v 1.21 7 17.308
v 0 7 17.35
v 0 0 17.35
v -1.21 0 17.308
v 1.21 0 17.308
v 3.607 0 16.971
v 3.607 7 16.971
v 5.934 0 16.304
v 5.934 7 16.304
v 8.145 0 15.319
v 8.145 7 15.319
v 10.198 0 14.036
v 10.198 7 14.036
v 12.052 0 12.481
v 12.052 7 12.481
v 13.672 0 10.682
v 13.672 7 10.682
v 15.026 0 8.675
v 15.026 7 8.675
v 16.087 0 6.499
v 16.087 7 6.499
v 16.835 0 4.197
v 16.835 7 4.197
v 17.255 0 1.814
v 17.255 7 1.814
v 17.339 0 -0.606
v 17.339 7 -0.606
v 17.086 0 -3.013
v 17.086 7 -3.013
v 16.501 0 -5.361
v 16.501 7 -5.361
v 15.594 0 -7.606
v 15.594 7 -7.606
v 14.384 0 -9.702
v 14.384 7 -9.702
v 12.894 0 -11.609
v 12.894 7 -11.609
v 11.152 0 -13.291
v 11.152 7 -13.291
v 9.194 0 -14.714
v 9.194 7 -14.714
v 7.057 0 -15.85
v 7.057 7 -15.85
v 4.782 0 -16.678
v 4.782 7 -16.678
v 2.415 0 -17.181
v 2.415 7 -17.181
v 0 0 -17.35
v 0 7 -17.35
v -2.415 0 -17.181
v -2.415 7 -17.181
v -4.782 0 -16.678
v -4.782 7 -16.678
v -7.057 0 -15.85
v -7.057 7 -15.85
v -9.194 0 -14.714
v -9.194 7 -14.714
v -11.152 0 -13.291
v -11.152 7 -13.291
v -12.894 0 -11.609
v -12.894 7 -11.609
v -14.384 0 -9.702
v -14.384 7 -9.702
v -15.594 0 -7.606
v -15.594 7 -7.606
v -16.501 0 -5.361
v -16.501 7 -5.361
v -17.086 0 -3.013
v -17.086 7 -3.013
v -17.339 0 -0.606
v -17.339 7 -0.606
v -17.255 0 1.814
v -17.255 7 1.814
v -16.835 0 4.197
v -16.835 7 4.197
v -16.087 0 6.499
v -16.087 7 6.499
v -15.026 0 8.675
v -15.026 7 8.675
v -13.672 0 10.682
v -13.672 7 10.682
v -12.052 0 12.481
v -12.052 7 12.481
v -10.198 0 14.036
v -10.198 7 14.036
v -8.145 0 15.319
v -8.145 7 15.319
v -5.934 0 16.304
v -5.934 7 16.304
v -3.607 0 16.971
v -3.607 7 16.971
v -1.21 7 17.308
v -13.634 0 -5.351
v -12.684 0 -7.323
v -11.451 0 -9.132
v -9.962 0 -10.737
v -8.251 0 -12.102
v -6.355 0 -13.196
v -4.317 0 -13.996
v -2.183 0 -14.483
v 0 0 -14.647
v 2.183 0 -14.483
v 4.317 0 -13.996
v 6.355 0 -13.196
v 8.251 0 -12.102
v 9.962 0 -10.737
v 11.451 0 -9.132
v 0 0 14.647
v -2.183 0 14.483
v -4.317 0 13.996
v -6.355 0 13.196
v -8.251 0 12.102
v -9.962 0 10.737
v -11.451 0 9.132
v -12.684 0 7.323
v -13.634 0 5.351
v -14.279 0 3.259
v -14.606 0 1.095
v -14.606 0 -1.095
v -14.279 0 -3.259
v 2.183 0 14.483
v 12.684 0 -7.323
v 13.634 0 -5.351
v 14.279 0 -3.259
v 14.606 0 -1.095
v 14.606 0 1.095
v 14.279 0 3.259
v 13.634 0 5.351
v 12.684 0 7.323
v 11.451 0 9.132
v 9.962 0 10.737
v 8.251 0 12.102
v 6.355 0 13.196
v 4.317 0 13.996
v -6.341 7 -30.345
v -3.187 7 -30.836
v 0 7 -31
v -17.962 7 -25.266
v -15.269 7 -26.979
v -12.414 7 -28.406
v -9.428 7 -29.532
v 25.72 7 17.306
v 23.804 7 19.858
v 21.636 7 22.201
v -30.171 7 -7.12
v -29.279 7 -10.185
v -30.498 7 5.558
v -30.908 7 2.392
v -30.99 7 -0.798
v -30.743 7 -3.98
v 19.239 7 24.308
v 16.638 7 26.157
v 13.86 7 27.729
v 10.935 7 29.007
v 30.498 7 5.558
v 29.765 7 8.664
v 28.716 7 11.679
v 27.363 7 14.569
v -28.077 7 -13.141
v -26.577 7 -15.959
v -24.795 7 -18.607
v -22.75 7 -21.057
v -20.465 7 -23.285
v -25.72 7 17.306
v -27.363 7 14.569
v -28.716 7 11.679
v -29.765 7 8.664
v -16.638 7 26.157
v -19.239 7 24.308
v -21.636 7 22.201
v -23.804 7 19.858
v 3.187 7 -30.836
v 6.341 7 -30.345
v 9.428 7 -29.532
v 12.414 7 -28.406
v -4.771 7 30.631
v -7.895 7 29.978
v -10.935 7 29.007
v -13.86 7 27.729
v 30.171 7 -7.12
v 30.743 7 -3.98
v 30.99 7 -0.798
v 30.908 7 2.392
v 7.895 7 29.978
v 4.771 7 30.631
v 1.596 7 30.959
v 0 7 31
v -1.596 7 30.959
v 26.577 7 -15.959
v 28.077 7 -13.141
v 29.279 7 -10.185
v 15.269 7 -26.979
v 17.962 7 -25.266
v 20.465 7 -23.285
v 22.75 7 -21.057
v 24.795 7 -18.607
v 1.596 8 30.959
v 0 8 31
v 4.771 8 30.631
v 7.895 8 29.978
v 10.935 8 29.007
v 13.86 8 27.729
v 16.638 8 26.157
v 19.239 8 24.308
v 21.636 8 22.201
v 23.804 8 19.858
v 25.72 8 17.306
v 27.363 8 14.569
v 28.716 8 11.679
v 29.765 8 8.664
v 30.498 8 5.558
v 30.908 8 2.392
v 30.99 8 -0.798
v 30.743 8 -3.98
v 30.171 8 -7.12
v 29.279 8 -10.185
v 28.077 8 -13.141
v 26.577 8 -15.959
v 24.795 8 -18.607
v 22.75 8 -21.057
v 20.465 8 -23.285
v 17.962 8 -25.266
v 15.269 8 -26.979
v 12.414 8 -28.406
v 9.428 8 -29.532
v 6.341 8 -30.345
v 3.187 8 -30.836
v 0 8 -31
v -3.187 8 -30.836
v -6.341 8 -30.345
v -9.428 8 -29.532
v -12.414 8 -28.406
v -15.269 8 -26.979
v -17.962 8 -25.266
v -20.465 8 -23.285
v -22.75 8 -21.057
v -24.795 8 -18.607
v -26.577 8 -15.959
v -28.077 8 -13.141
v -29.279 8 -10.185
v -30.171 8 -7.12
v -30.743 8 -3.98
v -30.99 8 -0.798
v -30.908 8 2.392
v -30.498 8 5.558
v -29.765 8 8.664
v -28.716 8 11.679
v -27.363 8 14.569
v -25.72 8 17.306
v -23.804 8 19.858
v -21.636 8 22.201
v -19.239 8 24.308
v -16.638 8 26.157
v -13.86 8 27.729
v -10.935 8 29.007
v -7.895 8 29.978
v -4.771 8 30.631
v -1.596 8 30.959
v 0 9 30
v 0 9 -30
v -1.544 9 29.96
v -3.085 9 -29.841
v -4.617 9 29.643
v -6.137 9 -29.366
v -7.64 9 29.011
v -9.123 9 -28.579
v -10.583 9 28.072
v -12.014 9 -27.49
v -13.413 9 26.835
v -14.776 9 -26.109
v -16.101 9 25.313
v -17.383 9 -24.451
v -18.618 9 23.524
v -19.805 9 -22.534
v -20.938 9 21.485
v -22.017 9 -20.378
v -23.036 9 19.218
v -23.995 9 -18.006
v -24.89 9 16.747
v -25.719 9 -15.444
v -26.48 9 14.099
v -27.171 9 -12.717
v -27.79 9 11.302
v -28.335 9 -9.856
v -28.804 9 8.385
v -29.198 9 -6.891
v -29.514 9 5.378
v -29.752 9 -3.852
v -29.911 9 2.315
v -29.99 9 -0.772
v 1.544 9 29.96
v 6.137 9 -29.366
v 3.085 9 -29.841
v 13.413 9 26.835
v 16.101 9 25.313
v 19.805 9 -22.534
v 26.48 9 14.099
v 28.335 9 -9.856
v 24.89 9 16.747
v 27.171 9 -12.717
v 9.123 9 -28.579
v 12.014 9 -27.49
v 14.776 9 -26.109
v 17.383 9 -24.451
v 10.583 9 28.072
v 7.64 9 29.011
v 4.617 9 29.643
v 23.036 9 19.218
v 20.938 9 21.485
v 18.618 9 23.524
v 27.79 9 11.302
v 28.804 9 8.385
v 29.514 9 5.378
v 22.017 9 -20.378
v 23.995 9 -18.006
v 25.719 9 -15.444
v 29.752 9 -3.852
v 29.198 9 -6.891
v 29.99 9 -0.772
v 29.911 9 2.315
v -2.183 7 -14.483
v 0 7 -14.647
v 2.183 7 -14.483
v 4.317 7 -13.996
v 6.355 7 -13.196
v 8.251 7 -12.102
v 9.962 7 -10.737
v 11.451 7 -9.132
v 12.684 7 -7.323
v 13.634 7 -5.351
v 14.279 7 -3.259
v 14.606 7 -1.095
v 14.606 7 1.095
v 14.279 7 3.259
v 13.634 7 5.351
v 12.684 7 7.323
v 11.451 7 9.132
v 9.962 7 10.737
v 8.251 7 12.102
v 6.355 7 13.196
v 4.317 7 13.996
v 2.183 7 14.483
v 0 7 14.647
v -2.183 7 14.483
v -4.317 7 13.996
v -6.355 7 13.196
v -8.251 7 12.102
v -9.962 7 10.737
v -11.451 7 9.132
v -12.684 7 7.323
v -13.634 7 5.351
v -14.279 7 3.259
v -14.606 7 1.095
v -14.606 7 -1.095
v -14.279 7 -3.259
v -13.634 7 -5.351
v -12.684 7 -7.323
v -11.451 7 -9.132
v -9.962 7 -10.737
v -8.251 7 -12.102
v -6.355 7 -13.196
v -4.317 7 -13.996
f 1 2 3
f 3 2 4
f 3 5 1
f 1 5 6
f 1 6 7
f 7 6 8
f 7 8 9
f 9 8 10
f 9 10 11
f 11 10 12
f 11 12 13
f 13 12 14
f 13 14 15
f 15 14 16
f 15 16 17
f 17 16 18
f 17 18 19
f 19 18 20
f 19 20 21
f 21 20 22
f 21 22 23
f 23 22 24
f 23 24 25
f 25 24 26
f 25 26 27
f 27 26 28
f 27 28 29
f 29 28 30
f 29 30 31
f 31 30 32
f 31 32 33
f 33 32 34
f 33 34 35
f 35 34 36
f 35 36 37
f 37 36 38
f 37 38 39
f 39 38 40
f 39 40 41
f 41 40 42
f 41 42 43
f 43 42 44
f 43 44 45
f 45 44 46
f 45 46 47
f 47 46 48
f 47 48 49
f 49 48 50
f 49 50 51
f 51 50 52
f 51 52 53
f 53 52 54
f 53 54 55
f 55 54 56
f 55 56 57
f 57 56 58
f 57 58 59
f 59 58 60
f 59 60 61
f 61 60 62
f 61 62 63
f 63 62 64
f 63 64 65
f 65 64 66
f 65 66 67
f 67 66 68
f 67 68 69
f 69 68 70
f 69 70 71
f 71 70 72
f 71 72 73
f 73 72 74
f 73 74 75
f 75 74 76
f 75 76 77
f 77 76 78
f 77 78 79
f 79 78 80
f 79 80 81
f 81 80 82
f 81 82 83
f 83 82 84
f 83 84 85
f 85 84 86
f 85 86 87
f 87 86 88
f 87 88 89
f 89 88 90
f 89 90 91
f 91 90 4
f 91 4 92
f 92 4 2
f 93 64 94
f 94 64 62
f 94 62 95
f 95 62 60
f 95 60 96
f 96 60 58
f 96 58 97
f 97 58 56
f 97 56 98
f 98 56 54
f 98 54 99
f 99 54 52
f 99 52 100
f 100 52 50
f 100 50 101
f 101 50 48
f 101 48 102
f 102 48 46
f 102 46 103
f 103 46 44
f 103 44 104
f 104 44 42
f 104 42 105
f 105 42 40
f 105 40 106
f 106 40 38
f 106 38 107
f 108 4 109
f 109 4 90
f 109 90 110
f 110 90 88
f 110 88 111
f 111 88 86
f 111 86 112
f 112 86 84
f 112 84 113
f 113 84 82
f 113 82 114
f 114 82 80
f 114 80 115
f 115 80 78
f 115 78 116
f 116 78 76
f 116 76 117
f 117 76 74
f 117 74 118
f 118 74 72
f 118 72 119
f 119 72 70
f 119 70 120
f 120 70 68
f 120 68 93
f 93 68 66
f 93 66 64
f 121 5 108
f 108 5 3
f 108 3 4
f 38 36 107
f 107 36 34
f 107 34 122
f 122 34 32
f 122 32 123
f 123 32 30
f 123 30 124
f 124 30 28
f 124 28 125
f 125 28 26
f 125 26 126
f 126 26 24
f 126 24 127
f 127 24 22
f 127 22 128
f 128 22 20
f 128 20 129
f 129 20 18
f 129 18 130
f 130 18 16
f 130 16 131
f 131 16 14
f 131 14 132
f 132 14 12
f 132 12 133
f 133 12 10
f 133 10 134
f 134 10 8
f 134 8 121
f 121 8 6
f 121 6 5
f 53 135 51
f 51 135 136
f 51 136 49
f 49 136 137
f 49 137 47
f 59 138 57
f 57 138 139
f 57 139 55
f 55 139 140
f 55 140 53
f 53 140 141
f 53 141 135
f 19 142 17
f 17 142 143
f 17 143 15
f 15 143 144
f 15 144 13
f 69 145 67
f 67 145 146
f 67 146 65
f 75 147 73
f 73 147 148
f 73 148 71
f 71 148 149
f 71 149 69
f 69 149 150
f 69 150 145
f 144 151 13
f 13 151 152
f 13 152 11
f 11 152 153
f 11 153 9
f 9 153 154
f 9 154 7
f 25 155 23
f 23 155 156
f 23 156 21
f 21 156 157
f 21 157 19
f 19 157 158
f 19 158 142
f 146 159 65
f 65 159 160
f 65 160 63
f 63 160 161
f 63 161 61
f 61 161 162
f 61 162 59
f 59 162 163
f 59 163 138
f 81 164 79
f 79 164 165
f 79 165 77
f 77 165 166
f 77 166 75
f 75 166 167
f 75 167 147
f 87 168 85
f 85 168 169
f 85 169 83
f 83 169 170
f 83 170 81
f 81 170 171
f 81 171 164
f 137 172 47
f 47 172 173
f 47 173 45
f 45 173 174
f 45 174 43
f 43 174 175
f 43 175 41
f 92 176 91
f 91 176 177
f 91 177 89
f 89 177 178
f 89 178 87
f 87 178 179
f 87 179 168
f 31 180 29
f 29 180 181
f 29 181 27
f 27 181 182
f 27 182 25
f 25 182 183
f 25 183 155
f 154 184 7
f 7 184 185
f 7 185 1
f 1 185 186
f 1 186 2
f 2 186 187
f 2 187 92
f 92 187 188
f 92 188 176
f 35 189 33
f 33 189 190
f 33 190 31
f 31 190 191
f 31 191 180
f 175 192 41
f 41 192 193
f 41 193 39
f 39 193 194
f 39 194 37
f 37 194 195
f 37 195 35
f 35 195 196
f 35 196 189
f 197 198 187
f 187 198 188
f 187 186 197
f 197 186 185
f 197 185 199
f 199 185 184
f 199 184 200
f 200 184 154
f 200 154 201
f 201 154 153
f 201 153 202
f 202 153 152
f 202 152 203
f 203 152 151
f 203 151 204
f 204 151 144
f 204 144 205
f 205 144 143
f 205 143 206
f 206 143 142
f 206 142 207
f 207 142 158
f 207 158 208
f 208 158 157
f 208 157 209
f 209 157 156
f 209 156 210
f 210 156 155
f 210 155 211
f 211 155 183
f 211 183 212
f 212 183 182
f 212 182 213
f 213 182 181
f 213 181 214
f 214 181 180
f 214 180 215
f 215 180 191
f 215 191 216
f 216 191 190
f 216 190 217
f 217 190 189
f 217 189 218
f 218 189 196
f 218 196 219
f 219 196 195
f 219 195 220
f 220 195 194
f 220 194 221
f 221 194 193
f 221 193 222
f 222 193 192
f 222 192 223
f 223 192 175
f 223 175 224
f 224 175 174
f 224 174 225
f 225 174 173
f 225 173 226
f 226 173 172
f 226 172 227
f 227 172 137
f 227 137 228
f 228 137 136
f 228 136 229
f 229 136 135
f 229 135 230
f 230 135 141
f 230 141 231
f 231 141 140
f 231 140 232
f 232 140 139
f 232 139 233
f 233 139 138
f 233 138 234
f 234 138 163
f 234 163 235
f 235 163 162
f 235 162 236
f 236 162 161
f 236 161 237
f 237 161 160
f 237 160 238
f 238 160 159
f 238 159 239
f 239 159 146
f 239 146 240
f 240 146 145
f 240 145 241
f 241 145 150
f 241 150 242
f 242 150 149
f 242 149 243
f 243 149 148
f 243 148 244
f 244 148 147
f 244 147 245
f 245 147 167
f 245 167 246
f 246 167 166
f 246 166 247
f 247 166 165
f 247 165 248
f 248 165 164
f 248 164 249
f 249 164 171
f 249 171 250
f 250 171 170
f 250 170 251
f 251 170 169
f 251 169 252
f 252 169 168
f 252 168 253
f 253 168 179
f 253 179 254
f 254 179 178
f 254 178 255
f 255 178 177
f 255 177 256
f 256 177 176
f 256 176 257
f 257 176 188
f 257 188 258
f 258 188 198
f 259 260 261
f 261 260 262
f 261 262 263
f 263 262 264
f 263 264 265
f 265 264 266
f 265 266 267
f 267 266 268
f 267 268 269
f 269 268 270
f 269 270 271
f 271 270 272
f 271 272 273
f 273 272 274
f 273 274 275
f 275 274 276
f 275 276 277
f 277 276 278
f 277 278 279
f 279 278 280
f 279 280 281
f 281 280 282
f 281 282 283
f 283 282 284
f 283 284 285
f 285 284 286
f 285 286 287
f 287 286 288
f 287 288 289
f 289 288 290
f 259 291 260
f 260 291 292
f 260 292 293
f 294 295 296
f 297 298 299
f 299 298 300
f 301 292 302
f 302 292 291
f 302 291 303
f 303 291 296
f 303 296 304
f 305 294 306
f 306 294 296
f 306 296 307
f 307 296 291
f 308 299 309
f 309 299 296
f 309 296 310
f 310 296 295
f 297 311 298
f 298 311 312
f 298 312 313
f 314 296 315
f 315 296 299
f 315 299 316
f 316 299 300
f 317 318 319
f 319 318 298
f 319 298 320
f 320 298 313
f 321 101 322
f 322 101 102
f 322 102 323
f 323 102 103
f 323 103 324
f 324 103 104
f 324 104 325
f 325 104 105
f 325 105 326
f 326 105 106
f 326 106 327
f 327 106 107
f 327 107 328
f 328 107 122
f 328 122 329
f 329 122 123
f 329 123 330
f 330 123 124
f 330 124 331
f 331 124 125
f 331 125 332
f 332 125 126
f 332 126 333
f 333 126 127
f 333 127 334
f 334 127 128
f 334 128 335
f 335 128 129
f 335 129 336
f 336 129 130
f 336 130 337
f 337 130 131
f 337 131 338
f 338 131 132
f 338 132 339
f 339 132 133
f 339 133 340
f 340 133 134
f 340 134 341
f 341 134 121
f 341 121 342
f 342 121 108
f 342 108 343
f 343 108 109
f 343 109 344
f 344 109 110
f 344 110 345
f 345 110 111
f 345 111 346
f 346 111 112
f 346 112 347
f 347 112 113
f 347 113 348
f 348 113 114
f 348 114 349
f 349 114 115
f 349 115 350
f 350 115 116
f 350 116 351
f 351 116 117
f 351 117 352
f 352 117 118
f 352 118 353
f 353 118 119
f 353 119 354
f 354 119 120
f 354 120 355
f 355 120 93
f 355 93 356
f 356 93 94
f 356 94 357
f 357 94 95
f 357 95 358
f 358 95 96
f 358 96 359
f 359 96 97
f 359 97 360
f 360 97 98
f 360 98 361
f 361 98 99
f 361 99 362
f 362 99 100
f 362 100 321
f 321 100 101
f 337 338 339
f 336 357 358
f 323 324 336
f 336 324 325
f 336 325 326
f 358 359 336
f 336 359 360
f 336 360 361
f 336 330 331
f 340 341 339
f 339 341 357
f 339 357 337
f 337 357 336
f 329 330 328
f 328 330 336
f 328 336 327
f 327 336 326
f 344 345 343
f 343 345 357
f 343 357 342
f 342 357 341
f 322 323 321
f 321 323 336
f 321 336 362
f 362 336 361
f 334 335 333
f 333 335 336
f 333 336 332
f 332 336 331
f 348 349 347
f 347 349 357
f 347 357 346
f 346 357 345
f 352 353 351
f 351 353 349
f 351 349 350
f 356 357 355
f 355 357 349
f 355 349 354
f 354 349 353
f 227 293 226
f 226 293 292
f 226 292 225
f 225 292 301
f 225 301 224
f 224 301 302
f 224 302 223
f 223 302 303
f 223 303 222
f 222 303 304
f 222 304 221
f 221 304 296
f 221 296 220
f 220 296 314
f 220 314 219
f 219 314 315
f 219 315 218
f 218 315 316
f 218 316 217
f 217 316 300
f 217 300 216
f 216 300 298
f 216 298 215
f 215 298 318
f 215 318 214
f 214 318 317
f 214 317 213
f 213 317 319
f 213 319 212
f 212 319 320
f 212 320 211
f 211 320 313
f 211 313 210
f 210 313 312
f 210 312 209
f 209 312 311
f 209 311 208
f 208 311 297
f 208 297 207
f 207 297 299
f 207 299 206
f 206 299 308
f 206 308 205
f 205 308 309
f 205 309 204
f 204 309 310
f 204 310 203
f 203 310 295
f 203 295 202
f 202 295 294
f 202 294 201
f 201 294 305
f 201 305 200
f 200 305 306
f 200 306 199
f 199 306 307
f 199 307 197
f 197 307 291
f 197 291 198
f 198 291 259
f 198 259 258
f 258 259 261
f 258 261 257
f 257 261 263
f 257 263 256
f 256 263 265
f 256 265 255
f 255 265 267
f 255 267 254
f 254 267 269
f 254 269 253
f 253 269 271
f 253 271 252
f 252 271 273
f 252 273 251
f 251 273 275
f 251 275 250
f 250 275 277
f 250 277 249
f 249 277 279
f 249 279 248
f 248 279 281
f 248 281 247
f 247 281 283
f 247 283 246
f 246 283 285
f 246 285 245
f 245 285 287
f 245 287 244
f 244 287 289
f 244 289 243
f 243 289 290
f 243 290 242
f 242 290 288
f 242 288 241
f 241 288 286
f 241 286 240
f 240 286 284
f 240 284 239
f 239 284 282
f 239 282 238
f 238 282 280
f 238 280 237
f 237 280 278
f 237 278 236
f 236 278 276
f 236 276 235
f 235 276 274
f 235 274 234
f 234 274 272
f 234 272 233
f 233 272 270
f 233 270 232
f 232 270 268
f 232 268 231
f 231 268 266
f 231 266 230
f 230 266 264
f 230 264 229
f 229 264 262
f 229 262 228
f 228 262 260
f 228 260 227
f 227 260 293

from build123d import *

# Parameters (mm, degrees)
SKETCH1_R           = 17.35
BOSS_EXTRUDE1_DEPTH = 7
SKETCH2_R           = 31
BOSS_EXTRUDE2_DEPTH = 2
SKETCH3_R           = 14.646692659
CUT_EXTRUDE1_DEPTH  = 7
CHAMFER1_SIZE       = 1


with BuildPart() as part:
    # Sketch1 → Boss-Extrude1 (new body)
    with BuildSketch(Plane(origin=(0, 0, 0), x_dir=(1, 0, 0), z_dir=(0, 1, 0))):
        Circle(SKETCH1_R)
    extrude(amount=BOSS_EXTRUDE1_DEPTH)

    # Sketch2 → Boss-Extrude2 (add)
    with BuildSketch(Plane(origin=(0, 7, 0), x_dir=(1, 0, 0), z_dir=(0, 1, 0))):
        Circle(SKETCH2_R)
    extrude(amount=BOSS_EXTRUDE2_DEPTH)

    # Sketch3 → Cut-Extrude1 (cut)
    with BuildSketch(Plane.XZ):
        Circle(SKETCH3_R)
    extrude(amount=-CUT_EXTRUDE1_DEPTH, mode=Mode.SUBTRACT)

    # Chamfer1
    chamfer1_edges = [part.edges().sort_by_distance(p)[0] for p in [
        (-31, 9, 0),
    ]]
    chamfer(chamfer1_edges, length=CHAMFER1_SIZE)


solid = part.part
